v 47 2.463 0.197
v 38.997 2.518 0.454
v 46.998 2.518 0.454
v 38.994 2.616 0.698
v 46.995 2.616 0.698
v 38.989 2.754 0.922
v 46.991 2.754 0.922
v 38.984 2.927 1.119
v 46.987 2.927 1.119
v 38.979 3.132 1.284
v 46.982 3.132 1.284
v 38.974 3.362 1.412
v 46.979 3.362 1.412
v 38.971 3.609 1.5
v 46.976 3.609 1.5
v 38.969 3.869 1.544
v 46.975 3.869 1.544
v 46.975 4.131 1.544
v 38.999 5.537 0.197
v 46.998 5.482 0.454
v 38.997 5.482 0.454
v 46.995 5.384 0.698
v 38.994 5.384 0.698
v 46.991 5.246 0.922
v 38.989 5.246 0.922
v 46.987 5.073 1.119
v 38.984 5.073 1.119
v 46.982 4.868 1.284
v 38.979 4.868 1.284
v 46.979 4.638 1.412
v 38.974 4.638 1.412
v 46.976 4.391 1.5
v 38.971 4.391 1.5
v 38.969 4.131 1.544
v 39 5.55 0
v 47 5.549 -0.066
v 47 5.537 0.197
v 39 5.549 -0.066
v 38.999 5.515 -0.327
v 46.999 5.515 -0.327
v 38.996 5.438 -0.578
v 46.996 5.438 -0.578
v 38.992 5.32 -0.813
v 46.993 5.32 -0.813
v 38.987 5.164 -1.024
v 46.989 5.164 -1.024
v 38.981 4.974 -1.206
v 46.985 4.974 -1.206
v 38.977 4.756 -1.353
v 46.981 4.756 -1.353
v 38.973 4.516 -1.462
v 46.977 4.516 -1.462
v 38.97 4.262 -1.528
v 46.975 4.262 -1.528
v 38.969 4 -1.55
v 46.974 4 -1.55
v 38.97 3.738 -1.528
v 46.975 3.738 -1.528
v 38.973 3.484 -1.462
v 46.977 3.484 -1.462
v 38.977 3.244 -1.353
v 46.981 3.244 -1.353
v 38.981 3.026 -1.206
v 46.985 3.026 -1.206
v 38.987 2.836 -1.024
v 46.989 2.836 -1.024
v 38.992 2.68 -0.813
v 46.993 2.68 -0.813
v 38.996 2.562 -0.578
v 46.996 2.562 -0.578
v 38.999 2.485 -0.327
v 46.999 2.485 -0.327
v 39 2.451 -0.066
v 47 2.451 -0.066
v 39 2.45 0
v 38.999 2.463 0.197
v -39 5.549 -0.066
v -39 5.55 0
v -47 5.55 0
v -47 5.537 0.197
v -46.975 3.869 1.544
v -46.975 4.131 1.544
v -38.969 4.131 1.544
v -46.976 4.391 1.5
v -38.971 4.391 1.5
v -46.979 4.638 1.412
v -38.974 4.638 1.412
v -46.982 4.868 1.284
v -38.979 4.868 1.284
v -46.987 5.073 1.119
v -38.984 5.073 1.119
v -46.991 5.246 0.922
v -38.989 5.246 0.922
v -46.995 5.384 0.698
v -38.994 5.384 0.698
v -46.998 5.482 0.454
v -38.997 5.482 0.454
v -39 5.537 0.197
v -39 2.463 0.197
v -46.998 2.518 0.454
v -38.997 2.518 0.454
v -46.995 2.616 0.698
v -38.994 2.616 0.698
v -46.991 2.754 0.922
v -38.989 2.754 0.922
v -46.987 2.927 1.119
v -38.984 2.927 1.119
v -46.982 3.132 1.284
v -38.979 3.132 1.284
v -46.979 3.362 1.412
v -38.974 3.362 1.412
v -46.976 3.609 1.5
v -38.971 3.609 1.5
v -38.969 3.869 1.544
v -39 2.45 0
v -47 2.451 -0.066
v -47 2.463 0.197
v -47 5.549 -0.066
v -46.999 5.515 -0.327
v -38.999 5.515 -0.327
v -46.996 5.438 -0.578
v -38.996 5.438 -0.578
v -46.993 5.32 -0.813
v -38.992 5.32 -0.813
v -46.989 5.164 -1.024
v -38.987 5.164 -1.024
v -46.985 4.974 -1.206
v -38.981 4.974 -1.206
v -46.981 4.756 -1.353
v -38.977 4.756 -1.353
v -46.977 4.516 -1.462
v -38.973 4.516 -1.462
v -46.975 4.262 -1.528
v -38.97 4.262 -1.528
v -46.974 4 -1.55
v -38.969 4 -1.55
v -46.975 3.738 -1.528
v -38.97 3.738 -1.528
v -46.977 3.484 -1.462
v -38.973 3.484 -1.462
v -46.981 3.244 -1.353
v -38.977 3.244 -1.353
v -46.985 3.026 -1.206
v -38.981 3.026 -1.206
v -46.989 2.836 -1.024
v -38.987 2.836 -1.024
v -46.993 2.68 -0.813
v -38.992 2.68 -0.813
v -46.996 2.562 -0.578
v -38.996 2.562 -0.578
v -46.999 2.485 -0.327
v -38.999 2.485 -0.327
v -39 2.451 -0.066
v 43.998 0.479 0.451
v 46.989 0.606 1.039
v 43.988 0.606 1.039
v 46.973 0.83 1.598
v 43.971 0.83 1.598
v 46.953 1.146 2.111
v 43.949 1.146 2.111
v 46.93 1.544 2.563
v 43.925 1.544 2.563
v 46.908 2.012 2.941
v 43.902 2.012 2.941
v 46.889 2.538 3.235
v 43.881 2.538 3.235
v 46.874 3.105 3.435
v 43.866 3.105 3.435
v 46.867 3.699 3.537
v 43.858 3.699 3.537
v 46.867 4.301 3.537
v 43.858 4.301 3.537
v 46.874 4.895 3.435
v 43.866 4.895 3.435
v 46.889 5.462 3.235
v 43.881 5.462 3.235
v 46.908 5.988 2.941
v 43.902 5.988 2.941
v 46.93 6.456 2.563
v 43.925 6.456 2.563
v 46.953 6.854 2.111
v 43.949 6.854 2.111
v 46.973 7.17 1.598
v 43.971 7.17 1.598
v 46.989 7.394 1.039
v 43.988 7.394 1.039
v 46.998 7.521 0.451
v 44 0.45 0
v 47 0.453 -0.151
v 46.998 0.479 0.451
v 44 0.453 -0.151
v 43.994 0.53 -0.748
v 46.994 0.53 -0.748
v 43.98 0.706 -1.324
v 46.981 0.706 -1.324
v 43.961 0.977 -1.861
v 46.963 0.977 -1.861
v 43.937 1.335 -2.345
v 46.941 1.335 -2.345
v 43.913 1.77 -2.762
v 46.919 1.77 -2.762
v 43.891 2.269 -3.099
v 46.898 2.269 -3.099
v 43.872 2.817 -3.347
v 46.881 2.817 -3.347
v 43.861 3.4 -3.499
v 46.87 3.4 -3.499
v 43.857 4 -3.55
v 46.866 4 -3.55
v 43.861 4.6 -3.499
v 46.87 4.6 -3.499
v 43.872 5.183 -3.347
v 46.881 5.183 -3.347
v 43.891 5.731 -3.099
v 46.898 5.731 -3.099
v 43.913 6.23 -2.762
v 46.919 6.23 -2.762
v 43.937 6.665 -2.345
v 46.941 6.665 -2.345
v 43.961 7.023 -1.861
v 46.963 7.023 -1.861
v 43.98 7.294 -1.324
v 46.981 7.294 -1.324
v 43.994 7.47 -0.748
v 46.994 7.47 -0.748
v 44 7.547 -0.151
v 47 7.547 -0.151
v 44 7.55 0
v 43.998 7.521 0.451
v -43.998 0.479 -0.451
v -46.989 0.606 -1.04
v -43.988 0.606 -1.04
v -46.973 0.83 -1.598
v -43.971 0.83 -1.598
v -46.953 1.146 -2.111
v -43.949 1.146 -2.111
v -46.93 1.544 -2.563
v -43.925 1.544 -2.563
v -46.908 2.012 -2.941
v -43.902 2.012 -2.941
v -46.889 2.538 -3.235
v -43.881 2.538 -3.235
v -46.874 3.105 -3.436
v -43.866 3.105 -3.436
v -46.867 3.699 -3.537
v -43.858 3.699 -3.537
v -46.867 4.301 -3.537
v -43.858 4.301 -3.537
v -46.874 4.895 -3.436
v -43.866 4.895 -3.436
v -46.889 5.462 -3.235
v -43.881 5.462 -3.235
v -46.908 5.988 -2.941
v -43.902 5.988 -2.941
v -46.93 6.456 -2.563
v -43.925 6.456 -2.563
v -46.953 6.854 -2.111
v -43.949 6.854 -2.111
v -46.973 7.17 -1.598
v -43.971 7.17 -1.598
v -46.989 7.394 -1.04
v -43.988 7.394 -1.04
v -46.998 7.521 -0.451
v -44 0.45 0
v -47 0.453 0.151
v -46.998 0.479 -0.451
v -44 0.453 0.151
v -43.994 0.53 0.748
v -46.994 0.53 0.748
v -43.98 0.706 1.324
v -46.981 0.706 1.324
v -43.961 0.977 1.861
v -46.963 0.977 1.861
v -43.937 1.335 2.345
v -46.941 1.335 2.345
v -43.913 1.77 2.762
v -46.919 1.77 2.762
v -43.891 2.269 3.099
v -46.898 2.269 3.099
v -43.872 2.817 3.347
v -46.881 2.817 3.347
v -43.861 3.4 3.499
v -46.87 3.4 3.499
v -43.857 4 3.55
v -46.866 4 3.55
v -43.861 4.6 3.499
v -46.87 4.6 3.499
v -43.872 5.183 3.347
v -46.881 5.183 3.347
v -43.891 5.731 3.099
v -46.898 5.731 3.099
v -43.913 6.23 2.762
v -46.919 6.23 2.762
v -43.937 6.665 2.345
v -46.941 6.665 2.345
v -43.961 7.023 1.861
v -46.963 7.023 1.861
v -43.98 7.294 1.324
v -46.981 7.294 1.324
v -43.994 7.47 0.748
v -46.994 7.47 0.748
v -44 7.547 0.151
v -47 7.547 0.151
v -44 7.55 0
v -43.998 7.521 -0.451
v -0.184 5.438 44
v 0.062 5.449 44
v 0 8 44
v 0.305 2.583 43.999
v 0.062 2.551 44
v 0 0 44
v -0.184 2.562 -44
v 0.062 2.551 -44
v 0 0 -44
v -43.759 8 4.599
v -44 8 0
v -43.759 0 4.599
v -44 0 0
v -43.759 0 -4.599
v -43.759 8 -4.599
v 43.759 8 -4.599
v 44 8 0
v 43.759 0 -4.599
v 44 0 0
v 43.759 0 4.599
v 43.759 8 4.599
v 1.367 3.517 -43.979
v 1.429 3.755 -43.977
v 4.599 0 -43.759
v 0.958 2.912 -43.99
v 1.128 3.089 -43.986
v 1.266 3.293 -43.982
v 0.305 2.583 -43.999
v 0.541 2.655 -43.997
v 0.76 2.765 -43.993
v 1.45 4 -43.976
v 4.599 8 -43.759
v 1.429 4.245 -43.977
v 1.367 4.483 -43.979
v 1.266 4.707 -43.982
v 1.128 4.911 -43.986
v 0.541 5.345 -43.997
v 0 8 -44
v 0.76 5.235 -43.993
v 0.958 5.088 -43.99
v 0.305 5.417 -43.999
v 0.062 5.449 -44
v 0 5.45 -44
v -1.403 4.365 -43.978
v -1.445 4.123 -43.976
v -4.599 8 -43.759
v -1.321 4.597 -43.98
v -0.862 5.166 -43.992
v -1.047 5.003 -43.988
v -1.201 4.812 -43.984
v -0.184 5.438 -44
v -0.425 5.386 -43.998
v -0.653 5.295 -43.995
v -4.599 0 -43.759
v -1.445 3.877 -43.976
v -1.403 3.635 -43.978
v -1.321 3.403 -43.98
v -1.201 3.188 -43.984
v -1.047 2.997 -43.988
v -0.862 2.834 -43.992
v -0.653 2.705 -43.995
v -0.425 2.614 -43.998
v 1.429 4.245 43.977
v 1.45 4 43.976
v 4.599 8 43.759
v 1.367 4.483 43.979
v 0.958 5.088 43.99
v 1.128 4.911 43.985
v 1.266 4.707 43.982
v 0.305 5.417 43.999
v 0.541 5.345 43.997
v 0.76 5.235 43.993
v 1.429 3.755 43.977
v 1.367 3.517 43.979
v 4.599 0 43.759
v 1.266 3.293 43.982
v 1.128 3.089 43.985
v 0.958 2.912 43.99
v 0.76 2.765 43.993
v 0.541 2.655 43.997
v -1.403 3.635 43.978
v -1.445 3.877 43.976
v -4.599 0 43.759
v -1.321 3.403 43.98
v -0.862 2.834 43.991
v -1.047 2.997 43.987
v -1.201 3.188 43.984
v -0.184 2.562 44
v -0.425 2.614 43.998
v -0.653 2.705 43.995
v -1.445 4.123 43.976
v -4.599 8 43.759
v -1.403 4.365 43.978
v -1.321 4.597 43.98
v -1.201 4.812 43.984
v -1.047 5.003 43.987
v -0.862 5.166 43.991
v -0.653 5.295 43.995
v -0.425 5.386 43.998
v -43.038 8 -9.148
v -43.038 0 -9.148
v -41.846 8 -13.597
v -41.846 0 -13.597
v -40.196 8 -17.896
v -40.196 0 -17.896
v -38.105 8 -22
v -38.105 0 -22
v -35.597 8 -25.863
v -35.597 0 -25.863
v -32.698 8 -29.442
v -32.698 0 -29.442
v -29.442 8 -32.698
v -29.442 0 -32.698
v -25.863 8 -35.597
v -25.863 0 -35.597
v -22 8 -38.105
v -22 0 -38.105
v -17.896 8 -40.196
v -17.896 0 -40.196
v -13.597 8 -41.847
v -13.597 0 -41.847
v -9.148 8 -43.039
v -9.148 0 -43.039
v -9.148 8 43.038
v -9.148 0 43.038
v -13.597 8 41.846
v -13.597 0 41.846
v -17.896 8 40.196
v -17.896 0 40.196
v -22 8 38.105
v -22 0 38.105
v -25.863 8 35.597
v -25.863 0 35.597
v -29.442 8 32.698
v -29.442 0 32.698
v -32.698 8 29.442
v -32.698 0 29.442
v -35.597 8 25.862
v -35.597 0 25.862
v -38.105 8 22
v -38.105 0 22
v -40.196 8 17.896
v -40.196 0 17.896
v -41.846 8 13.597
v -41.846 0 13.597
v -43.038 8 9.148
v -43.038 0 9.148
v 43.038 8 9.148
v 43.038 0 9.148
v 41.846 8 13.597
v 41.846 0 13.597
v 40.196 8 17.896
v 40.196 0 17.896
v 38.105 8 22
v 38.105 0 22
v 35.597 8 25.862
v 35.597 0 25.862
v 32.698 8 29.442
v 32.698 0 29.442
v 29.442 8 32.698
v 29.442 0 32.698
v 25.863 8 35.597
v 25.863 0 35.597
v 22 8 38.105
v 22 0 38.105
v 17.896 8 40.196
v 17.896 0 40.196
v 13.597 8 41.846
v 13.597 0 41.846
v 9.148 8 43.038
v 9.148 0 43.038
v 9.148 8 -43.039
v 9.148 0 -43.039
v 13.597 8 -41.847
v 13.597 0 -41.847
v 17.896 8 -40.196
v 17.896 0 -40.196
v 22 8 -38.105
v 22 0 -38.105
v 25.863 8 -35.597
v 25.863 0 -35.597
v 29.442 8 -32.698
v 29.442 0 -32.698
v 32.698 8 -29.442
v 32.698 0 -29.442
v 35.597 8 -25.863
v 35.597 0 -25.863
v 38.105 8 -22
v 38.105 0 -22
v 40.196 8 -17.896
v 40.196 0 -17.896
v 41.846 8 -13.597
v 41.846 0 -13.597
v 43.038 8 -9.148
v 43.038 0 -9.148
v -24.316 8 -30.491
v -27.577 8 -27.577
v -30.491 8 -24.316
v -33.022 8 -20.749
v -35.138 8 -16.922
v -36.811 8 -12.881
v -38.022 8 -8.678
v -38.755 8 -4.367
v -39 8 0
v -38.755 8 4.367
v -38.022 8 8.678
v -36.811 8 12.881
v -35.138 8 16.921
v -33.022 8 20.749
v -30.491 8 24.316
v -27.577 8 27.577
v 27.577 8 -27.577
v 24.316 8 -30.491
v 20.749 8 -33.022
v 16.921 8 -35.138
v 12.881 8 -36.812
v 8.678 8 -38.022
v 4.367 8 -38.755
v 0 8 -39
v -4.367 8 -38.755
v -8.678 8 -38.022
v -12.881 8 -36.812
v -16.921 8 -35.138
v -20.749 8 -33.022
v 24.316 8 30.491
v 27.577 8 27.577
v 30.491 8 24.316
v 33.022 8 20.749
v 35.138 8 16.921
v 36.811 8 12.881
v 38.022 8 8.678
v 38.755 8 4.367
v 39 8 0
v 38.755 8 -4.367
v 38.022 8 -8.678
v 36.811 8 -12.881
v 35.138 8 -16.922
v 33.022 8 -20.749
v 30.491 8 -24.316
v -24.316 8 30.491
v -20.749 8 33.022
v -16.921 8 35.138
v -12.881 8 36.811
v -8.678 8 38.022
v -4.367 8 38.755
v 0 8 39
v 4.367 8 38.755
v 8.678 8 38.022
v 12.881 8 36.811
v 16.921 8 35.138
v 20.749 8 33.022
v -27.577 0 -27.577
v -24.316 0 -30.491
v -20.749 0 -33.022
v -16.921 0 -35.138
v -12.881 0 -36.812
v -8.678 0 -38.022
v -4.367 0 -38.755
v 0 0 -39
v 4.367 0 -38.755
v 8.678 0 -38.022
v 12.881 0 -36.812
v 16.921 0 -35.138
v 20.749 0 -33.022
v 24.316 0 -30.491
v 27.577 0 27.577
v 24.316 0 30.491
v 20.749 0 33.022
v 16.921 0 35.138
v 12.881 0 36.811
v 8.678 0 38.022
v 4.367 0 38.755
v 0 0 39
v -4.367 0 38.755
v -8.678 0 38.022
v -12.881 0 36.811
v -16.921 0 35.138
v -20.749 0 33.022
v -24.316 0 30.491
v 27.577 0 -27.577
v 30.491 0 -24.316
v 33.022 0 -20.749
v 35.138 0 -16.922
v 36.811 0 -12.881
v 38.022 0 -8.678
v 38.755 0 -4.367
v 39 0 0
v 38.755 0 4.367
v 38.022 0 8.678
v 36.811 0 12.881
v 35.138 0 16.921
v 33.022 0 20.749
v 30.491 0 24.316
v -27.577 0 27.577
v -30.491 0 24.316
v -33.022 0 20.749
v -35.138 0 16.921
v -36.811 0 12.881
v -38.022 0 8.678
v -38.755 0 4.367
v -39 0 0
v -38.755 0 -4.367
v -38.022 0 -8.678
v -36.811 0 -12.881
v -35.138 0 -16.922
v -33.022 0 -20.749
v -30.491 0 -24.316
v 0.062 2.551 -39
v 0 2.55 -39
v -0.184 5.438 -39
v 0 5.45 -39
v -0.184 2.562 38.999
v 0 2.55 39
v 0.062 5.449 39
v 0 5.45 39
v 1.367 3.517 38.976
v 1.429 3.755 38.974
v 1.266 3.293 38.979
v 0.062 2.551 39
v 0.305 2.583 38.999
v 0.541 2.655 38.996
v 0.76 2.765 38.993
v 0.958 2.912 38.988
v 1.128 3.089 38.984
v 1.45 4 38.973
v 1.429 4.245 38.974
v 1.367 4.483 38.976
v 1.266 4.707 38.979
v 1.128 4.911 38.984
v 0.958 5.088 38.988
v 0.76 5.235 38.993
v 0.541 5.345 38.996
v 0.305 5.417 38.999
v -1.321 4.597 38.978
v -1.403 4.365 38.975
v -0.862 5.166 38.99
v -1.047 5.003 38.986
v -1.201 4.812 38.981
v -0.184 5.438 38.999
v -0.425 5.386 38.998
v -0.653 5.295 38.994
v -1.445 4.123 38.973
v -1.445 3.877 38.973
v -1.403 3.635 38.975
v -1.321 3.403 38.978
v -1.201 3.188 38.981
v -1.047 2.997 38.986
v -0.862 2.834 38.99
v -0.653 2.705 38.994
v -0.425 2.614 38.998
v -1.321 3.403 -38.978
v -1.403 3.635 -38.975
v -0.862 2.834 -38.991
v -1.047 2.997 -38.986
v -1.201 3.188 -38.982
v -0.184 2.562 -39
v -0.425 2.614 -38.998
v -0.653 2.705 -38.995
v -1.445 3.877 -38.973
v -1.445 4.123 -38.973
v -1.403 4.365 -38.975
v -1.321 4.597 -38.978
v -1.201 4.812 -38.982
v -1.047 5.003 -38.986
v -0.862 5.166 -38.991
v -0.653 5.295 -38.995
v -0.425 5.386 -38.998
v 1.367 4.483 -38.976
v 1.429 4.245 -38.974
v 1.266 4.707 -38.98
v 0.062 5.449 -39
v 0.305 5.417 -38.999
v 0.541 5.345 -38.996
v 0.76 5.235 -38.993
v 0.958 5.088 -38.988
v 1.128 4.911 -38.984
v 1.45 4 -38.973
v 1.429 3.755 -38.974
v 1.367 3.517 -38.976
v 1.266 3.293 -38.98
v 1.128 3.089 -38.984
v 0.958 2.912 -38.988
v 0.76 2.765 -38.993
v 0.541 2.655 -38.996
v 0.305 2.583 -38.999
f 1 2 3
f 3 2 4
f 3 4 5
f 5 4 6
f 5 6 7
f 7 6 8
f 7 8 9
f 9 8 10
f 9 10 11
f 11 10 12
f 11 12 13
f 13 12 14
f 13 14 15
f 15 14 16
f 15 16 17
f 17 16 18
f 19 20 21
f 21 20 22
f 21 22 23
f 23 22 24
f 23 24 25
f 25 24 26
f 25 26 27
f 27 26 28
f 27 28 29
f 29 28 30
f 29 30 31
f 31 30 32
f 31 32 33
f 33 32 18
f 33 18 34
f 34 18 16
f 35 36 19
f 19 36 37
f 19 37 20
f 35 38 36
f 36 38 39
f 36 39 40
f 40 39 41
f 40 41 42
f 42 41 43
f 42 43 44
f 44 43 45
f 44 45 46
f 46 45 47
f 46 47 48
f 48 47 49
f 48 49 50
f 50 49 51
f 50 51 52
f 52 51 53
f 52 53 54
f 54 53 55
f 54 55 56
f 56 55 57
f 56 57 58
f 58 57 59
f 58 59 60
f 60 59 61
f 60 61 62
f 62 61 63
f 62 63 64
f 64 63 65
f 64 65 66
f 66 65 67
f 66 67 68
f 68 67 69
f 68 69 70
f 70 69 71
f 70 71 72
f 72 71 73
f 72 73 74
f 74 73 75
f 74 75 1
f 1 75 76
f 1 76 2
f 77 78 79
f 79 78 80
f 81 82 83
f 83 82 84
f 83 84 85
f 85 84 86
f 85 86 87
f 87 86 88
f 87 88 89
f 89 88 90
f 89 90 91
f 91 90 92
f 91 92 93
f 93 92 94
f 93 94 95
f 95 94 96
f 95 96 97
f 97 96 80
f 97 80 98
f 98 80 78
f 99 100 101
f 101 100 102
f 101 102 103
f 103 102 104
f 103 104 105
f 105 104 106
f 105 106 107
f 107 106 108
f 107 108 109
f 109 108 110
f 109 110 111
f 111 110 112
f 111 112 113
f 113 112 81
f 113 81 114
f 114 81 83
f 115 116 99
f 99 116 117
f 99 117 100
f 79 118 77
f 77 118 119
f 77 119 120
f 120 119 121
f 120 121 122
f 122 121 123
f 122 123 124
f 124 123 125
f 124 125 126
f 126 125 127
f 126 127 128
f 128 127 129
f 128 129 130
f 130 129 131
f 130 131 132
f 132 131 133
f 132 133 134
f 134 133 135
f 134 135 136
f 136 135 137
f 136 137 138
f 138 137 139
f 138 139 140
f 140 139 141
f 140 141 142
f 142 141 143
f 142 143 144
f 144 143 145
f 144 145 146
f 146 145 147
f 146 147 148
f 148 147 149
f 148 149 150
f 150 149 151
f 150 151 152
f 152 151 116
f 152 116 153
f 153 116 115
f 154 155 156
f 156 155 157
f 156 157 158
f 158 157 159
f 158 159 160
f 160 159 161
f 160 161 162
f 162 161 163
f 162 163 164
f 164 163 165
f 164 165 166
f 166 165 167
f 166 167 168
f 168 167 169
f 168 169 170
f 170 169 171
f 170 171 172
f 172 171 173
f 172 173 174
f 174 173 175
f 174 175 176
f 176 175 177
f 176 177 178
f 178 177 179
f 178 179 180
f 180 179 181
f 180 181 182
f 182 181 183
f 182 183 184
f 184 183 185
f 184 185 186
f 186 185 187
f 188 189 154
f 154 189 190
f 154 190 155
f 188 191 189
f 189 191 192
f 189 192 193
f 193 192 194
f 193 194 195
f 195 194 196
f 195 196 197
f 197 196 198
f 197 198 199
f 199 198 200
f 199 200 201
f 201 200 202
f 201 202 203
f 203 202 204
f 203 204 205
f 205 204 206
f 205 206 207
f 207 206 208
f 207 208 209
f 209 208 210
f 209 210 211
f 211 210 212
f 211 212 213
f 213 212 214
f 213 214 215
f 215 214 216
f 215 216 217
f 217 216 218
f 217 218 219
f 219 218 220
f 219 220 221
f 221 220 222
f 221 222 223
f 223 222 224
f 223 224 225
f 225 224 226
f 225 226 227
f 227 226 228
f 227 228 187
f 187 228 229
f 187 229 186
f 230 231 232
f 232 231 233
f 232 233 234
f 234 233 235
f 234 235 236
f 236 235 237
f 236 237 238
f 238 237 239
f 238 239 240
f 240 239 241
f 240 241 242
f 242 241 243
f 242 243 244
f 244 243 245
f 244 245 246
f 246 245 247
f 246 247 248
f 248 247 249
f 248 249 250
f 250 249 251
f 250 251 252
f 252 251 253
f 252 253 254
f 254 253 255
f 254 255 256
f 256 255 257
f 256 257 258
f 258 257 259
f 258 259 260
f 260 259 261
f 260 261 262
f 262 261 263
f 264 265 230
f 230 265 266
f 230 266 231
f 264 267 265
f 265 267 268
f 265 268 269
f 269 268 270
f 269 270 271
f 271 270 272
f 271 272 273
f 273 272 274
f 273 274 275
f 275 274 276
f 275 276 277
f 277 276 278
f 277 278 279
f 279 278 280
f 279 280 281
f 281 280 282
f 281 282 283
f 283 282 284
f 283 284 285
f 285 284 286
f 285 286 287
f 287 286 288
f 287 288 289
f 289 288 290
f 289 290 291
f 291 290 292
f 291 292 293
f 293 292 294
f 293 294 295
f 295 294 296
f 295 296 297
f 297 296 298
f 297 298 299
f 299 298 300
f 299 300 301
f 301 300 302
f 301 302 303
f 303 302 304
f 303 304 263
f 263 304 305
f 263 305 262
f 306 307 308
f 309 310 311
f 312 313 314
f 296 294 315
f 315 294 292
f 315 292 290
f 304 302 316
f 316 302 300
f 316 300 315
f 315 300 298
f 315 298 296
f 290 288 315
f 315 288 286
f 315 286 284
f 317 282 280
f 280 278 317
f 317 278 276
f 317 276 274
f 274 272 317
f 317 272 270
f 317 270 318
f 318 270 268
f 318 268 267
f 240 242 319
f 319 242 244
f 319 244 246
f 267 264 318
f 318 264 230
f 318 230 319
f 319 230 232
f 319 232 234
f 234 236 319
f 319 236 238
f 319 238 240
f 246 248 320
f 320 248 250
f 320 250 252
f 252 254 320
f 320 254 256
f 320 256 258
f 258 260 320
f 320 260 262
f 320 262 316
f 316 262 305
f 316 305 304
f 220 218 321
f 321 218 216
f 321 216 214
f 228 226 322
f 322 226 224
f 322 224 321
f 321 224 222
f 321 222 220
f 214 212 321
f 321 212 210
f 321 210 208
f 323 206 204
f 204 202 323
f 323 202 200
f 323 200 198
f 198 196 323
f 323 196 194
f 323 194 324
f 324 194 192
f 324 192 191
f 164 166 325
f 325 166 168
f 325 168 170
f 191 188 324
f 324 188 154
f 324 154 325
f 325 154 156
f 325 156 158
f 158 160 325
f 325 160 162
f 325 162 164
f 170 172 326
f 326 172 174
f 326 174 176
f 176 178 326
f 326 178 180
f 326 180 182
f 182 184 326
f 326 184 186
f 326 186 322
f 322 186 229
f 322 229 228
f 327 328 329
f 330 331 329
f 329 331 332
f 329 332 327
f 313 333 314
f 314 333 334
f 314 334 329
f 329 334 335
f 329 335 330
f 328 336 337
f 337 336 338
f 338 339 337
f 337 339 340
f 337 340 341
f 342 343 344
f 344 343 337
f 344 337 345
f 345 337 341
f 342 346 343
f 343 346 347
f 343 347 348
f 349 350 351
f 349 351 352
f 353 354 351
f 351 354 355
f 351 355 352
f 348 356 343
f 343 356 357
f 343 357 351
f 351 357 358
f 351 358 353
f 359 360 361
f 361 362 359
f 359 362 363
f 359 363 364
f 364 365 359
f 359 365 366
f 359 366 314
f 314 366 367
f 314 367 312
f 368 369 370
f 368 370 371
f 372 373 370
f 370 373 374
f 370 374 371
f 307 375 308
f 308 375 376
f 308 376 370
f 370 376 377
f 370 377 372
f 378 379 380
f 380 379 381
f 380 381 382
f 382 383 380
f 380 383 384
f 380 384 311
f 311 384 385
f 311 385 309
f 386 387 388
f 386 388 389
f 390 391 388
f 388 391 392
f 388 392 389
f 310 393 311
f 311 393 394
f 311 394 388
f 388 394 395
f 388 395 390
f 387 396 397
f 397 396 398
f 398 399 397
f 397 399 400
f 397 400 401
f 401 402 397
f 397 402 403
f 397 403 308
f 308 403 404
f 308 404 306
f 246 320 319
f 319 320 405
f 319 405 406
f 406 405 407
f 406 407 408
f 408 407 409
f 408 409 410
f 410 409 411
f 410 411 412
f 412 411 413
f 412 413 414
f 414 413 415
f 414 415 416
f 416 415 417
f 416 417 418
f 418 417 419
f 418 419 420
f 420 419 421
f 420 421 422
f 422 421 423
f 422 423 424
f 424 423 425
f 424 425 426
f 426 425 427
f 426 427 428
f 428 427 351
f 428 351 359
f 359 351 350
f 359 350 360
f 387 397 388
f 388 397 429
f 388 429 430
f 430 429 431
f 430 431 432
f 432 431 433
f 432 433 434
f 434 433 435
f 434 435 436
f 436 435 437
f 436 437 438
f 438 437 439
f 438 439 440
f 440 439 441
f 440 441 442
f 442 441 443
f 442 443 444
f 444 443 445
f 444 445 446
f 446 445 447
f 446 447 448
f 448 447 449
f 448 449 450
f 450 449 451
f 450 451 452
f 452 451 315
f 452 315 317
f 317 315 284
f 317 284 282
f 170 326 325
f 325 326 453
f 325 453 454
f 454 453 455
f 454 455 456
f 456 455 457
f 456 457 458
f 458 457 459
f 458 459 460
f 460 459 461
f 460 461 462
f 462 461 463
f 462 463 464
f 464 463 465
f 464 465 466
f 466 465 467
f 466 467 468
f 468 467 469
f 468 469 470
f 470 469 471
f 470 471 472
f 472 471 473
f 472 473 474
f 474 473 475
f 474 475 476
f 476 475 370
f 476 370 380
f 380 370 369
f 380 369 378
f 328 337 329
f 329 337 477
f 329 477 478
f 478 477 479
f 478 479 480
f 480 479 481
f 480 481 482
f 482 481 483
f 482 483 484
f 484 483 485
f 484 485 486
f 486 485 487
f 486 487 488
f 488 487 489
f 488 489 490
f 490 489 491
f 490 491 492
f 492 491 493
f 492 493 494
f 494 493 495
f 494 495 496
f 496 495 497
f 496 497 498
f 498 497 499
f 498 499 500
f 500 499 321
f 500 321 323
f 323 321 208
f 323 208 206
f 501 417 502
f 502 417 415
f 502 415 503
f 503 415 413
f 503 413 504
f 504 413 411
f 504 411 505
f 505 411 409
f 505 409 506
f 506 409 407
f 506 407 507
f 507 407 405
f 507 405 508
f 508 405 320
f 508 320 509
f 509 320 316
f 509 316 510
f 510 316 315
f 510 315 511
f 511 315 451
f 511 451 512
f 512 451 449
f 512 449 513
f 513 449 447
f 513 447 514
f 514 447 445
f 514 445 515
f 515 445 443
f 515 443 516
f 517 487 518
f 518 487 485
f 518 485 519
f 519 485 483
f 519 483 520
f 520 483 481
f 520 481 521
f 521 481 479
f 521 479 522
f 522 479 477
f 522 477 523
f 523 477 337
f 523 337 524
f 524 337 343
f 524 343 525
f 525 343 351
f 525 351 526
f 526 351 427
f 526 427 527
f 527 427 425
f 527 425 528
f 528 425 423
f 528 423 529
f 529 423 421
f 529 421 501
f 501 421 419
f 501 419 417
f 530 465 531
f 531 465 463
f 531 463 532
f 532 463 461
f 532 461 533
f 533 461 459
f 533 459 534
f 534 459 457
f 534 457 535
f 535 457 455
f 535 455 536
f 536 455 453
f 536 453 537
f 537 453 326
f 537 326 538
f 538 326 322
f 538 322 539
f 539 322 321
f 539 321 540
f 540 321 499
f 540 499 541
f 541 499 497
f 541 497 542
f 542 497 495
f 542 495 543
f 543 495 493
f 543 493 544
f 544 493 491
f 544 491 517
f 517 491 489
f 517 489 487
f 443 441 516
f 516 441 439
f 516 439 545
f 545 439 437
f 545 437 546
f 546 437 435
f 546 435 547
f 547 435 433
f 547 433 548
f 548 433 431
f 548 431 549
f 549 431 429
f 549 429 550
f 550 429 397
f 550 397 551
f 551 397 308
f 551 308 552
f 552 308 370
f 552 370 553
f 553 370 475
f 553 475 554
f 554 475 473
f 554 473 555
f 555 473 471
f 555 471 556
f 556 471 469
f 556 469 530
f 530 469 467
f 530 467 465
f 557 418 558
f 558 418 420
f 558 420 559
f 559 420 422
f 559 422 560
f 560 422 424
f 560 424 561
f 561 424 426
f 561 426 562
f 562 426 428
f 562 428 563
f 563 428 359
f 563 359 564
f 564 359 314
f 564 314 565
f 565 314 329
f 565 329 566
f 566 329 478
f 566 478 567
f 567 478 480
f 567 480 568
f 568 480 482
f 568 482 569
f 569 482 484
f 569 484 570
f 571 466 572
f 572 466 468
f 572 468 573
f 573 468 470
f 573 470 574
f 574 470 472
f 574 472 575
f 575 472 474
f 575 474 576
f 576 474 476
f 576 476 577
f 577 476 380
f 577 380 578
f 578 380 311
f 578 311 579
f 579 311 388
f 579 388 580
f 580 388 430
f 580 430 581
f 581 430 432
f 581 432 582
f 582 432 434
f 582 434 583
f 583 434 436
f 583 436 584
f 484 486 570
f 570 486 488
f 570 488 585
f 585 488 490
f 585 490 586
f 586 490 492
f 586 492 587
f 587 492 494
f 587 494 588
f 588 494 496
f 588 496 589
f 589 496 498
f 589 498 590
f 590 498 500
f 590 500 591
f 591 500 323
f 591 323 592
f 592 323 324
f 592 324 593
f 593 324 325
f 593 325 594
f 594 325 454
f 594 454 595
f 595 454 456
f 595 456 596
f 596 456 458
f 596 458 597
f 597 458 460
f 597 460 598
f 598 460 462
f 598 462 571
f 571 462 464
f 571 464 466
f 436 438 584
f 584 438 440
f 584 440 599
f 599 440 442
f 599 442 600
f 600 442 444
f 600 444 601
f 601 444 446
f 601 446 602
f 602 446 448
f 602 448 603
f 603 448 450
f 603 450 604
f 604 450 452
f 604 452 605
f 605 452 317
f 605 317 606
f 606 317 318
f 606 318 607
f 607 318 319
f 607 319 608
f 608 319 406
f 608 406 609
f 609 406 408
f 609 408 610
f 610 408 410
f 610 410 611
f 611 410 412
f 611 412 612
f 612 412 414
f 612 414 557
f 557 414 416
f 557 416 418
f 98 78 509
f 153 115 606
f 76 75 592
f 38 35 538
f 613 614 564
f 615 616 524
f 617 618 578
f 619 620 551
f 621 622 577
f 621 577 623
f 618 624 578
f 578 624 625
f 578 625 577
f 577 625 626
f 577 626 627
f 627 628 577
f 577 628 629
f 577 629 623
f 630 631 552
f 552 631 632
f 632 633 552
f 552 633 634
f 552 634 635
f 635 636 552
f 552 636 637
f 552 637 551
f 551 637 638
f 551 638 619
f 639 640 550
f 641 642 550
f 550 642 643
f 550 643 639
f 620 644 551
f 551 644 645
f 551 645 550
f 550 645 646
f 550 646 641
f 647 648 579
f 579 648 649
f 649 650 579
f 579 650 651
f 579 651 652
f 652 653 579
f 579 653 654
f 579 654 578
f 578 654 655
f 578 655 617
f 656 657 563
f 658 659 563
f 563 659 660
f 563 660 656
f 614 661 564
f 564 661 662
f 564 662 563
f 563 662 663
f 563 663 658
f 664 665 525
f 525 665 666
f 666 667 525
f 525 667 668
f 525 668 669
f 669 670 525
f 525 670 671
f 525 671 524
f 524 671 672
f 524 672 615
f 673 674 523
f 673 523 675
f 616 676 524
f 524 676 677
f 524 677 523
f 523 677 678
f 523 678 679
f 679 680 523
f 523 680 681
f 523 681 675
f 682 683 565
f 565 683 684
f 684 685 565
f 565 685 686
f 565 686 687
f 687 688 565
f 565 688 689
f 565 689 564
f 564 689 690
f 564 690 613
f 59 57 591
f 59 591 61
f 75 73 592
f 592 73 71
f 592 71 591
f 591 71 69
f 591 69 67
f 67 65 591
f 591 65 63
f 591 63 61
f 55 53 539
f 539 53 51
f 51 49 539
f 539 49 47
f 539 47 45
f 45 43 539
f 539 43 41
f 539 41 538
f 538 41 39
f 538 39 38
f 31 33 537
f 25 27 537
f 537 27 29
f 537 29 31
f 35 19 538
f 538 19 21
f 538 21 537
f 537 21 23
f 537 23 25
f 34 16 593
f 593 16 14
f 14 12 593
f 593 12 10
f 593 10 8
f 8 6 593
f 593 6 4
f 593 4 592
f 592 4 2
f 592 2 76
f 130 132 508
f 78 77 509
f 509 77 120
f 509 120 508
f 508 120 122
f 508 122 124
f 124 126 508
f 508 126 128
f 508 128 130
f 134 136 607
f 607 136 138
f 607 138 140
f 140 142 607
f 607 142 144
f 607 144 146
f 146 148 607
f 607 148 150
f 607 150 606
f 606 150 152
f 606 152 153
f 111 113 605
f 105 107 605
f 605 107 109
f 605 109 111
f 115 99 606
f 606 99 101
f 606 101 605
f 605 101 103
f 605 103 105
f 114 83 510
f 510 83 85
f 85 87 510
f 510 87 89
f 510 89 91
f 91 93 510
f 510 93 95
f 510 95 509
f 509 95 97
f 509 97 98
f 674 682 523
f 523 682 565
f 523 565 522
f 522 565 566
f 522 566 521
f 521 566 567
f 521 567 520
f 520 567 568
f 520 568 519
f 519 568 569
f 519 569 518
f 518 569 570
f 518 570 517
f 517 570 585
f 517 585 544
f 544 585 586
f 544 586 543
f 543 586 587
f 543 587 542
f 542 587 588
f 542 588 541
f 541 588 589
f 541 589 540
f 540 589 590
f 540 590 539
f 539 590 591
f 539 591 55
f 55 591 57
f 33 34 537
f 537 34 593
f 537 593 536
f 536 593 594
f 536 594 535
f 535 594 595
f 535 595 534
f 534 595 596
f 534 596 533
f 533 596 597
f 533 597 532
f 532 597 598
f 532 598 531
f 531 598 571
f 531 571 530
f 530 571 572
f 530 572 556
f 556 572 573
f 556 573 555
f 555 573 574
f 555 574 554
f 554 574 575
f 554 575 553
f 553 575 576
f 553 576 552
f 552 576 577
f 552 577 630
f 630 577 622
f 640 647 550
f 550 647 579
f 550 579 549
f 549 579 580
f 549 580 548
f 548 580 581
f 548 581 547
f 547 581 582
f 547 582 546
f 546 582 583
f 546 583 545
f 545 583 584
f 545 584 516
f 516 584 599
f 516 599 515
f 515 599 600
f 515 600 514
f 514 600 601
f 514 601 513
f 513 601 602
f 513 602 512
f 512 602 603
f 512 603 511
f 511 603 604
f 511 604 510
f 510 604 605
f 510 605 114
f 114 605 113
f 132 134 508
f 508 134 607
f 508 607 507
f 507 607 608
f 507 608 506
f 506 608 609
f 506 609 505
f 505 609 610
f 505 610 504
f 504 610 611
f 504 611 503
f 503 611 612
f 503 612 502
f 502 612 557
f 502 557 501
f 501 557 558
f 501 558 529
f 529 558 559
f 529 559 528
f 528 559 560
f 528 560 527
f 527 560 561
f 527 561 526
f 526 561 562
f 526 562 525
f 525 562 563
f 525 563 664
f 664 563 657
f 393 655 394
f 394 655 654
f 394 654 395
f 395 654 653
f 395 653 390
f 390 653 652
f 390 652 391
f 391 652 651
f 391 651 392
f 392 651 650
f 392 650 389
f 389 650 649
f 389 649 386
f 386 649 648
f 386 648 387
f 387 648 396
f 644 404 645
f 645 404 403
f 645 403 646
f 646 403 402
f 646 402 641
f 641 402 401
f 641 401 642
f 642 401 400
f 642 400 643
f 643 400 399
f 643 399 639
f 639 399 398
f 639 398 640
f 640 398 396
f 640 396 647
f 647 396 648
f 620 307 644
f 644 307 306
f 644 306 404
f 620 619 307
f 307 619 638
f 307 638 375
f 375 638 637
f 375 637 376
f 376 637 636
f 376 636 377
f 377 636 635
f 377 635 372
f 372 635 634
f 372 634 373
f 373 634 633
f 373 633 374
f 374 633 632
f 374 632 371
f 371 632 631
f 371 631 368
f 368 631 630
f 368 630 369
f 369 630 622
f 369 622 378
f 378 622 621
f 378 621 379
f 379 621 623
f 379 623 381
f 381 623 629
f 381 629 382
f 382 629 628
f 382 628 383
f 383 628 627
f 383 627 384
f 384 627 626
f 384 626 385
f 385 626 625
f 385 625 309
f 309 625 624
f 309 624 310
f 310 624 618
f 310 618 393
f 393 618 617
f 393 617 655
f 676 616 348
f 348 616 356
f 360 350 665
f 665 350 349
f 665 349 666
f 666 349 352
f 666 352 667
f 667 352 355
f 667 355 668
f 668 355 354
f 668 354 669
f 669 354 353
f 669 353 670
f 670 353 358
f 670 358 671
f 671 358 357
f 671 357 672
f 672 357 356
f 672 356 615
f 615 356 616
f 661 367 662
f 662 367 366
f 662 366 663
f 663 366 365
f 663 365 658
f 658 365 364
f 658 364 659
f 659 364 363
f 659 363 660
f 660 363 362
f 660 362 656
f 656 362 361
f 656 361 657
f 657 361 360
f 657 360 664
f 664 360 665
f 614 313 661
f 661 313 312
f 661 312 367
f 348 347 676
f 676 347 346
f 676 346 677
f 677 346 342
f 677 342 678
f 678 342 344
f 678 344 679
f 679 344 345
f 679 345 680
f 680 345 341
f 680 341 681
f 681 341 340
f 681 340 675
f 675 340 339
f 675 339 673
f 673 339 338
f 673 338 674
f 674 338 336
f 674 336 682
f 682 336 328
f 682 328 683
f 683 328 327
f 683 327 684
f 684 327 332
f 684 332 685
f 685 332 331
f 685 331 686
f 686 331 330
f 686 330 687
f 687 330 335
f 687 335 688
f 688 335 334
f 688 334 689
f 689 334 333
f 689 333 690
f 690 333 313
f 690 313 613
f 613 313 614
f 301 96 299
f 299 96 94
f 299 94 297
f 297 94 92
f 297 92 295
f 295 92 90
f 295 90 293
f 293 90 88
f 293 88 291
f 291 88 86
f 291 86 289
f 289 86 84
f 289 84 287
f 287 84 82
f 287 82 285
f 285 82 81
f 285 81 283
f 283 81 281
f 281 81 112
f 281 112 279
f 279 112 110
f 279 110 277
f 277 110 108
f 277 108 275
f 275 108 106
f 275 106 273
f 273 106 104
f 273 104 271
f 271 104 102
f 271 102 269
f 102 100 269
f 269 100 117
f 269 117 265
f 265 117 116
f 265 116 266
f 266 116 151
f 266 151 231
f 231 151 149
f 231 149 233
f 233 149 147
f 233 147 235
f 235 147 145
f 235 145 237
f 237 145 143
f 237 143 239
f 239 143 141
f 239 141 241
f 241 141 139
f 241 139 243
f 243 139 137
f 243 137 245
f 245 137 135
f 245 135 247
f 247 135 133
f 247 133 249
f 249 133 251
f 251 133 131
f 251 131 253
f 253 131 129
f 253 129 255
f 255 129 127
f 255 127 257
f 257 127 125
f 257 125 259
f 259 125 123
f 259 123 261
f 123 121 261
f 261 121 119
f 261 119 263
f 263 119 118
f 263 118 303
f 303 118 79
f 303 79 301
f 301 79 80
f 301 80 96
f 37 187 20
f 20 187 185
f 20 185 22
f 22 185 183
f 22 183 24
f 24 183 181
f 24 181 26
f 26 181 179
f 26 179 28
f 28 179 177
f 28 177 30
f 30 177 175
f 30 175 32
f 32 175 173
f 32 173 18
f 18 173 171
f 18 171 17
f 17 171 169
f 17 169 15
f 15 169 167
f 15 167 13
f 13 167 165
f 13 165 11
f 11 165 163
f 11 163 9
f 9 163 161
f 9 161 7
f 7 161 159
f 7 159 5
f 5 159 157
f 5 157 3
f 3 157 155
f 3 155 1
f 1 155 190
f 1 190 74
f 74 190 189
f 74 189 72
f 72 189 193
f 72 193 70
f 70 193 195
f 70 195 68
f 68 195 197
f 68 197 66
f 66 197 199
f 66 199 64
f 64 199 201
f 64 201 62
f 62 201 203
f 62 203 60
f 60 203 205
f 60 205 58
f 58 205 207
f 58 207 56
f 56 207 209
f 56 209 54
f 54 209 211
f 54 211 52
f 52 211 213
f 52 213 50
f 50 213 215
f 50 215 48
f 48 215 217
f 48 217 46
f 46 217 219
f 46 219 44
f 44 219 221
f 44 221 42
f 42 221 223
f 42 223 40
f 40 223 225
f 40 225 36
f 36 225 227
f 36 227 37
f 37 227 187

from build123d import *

# Parameters (mm, degrees)
SKETCH1_R               = 44
SKETCH1_R_2             = 39
BOSS_EXTRUDE1_DEPTH     = 8
SKETCH2_R               = 1.45
CUT_EXTRUDE1_DEPTH      = 45
CUT_EXTRUDE1_DEPTH_BACK = 45
SKETCH3_R               = 1.55
CUT_EXTRUDE2_DEPTH      = 45.0000001
CUT_EXTRUDE2_DEPTH_BACK = 45.0000001
BOSS_EXTRUDE2_START     = -3.143444
SKETCH4_R               = 3.55
SKETCH4_R_2             = 1.55
BOSS_EXTRUDE2_DEPTH     = 3.143444
SKETCH7_R               = 50
SKETCH7_R_2             = 47
CUT_EXTRUDE3_DEPTH      = 9.0000001


with BuildPart() as part:
    # Sketch1 → Boss-Extrude1 (new body)
    with BuildSketch(Plane(origin=(0, 0, 0), x_dir=(1, 0, 0), z_dir=(0, 1, 0))):
        Circle(SKETCH1_R)
        Circle(SKETCH1_R_2, mode=Mode.SUBTRACT)
    extrude(amount=BOSS_EXTRUDE1_DEPTH)

    # Sketch2 → Cut-Extrude1 (cut, two sides)
    with BuildSketch(Plane.XY) as cut_extrude1_sk:
        with Locations((0, 4)):
            Circle(SKETCH2_R)
    extrude(amount=CUT_EXTRUDE1_DEPTH, mode=Mode.SUBTRACT)
    extrude(cut_extrude1_sk.sketch, amount=-CUT_EXTRUDE1_DEPTH_BACK, mode=Mode.SUBTRACT)

    # Sketch3 → Cut-Extrude2 (cut, two sides)
    with BuildSketch(Plane(origin=(0, 0, 0), x_dir=(0, 0, -1), z_dir=(1, 0, 0))) as cut_extrude2_sk:
        with Locations((0, 4)):
            Circle(SKETCH3_R)
    extrude(amount=CUT_EXTRUDE2_DEPTH, mode=Mode.SUBTRACT)
    extrude(cut_extrude2_sk.sketch, amount=-CUT_EXTRUDE2_DEPTH_BACK, mode=Mode.SUBTRACT)

    # Sketch4 → Boss-Extrude2 (add)
    with BuildSketch(Plane(origin=(47, 0, 0), x_dir=(0, 0, -1), z_dir=(1, 0, 0)).offset(BOSS_EXTRUDE2_START)):
        with Locations((0, 4)):
            Circle(SKETCH4_R)
        with Locations((0, 4)):
            Circle(SKETCH4_R_2, mode=Mode.SUBTRACT)
    boss_extrude2 = extrude(amount=BOSS_EXTRUDE2_DEPTH)

    # Mirror1: Boss-Extrude2 across plane
    add(boss_extrude2.mirror(Plane(origin=(0, 0, 0), x_dir=(0, 0, 1), z_dir=(1, 0, 0))))

    # Sketch7 → Cut-Extrude3 (cut, through all)
    with BuildSketch(Plane(origin=(0, 8, 0), x_dir=(1, 0, 0), z_dir=(0, 1, 0))):
        Circle(SKETCH7_R)
        Circle(SKETCH7_R_2, mode=Mode.SUBTRACT)
    extrude(amount=-CUT_EXTRUDE3_DEPTH, mode=Mode.SUBTRACT)


solid = part.part
